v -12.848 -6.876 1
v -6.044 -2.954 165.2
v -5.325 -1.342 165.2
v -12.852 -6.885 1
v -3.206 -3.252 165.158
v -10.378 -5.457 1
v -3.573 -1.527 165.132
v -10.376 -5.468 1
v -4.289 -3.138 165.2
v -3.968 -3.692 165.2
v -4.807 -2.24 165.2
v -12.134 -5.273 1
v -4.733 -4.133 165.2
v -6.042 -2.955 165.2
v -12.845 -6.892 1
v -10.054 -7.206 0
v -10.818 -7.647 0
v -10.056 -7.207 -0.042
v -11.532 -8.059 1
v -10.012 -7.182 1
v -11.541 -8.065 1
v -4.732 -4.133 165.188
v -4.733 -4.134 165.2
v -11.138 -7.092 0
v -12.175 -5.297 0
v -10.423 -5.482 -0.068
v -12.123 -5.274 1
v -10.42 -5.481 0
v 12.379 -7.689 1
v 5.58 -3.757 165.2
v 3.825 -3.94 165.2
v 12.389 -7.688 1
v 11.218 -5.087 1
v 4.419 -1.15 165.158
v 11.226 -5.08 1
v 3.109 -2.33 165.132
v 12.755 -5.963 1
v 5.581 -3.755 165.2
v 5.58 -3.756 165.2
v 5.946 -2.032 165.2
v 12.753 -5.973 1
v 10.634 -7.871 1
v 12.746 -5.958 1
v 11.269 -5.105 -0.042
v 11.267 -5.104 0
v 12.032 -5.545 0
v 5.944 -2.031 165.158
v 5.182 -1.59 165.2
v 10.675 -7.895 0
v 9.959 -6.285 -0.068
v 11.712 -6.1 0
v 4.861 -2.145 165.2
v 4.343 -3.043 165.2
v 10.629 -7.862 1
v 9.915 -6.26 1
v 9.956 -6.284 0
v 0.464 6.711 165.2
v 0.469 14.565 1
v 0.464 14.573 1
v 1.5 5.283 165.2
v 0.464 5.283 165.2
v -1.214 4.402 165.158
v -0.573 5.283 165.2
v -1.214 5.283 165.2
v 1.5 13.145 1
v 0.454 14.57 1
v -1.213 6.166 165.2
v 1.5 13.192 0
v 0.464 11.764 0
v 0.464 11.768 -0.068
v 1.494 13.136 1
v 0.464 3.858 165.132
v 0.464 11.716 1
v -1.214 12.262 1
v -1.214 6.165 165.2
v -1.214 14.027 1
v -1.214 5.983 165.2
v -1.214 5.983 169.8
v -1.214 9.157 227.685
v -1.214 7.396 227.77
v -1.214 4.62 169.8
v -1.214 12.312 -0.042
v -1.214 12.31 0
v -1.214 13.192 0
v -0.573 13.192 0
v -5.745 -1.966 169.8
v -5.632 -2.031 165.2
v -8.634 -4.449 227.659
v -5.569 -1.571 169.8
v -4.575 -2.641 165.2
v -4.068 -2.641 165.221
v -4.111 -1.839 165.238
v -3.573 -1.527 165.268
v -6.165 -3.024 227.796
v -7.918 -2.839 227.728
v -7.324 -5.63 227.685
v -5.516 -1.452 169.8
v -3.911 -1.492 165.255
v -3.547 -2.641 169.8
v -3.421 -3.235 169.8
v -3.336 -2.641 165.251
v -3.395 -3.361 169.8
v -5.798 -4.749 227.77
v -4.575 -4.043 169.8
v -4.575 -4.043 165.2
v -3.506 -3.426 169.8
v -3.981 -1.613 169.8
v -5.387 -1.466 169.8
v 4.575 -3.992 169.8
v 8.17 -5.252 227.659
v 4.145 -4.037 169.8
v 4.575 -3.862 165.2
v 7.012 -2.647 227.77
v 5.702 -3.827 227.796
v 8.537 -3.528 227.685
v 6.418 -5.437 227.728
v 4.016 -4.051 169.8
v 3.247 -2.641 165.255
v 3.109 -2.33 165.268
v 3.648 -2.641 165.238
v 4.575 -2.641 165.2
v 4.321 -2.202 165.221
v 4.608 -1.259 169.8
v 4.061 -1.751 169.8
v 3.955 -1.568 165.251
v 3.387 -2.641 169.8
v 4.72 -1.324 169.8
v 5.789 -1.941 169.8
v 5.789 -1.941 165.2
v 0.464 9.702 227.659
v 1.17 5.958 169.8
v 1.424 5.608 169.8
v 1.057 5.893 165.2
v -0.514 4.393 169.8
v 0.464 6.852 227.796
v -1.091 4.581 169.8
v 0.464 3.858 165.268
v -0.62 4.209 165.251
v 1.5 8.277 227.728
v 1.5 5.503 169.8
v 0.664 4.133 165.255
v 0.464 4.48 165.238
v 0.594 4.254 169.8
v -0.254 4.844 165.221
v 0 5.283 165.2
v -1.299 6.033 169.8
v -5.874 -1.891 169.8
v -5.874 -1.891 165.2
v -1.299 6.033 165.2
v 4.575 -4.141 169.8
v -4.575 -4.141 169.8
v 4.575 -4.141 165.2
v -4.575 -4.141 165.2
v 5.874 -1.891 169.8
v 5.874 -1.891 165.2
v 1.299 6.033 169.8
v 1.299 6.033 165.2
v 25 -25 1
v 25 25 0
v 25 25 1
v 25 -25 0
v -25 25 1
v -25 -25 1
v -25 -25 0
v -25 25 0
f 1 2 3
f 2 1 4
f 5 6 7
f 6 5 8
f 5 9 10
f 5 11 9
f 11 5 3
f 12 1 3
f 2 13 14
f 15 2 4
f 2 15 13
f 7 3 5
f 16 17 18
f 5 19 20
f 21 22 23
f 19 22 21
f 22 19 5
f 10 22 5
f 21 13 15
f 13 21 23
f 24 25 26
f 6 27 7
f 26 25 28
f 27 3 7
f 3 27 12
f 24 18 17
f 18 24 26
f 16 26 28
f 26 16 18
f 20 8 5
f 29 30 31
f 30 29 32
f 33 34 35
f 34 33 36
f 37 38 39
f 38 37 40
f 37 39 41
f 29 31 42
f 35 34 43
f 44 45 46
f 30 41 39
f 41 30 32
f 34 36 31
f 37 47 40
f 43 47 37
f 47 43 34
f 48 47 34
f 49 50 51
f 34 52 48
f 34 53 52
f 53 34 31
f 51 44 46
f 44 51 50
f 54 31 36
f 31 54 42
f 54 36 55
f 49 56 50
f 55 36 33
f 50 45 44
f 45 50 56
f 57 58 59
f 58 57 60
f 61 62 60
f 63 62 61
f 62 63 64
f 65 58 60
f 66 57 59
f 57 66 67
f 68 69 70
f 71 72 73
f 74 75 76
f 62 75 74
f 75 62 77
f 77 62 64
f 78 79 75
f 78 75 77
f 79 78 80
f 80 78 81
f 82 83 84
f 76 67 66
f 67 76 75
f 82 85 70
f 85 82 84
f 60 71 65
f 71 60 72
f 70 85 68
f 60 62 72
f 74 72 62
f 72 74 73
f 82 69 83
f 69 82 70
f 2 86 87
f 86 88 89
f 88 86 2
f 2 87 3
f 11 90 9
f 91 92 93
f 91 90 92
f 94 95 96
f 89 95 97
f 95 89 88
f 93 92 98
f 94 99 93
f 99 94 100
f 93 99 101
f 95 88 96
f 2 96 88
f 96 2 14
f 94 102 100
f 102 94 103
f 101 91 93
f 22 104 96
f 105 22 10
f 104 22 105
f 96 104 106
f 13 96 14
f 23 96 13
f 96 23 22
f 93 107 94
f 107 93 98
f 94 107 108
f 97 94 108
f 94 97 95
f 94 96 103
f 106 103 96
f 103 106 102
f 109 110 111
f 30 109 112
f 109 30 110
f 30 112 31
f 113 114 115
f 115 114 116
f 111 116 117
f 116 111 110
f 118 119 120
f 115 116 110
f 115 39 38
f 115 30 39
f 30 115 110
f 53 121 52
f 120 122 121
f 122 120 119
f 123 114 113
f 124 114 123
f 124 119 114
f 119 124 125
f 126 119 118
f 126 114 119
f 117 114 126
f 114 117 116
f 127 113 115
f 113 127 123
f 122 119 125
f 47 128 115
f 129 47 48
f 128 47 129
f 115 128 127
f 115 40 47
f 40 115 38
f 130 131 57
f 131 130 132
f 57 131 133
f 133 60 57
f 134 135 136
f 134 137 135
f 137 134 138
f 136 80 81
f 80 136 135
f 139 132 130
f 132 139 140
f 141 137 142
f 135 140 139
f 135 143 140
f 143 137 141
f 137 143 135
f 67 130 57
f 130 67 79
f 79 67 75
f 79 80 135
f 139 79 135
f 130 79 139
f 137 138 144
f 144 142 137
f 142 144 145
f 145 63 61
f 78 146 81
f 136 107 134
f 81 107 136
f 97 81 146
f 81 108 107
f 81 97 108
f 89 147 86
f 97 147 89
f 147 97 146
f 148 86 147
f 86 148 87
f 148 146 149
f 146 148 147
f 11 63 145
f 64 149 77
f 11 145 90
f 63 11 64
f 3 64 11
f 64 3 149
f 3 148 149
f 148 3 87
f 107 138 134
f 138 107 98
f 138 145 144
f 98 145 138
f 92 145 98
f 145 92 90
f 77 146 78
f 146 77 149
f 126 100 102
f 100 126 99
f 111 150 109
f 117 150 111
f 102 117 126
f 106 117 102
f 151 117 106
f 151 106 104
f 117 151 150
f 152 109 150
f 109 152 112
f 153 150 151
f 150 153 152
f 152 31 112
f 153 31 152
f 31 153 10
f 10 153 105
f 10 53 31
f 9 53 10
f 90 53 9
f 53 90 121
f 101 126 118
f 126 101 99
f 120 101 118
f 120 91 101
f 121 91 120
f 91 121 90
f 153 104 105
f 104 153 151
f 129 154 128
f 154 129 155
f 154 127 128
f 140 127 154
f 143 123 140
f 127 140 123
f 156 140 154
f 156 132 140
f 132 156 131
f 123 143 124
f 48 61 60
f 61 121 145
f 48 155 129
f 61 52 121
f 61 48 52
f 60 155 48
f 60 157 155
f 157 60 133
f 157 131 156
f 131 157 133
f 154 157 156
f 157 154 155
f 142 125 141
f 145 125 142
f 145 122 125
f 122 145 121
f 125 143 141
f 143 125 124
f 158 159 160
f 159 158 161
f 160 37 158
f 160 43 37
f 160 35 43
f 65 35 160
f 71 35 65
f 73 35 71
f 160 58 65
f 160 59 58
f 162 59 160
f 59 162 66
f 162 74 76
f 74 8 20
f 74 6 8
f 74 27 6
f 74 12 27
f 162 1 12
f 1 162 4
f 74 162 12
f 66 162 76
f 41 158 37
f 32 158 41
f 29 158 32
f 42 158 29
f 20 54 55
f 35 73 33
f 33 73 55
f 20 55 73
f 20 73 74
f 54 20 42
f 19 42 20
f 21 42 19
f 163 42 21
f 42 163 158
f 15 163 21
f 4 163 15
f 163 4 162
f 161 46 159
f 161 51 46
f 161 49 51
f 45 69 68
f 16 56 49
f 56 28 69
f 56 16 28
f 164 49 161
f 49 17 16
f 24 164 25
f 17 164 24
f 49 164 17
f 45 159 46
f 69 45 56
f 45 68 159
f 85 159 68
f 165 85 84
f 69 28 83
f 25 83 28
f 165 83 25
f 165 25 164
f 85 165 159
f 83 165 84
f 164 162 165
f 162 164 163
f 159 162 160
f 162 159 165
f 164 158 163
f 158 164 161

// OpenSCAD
//
// Sturo Tower parametric model
//
// MIT License (see LICENSE file)
// (c) Russell Smith 2019
// https://github.com/ukd1/openscad-sutro-tower
//
// All distances / lengths are in meters.
//
// Deets from:
// https://www.sutrotower.com/PDF/Sutro%20Tower%20DEIR%2008-0517(1).pdf
// https://en.wikipedia.org/wiki/Sutro_Tower

height = 297.8;             // currently doeas shit
level_1_spacing = 45.7;     // from wikipedia
level_4_spacing = 18.3;     // "
level_6_spacing = 30.5;     // "

leg_radius = 1.5;           // guess, it looks kinda right
legs = 3;                   // observations, but this is useful for debug
base = 50;                  // change depending on what you want. 0 or less disables
show_wip_features = false;  // you wanna see work-in-progress stuff? enable this and maybe help? Note, these
                            // should not be indented properly, aka, -1 level, just to keep diffs low / because

//
// Level settings
// 
// some are estimates, based on guessing they're the same size as
// known levels. prolly dumb but easy to fix.
//

// unknown_level_thickness = level_4_top - level_4_bottom;
unknown_level_thickness = 4.6;

// level details from https://www.sutrotower.com/PDF/Sutro%20Tower%20DEIR%2008-0517(1).pdf page 20
// converted from ft to meters (x 0.3048)
//
level_6_top = 232.3;    // 762ft
level_6_bottom = level_6_top - unknown_level_thickness; // estimate

level_5_top = 200.2;    // 657ft
level_5_bottom = level_5_top - unknown_level_thickness; // estimate

level_4_top = 169.8;    // 557ft
level_4_bottom = 165.2; // 542ft

level_3_top = 116.4;    // 382ft
level_3_bottom = level_3_top - unknown_level_thickness; // estimate

level_2_top = 57.0;     // 187ft
level_2_bottom = level_2_top - unknown_level_thickness; // estimate


//
// Draw the base / floor
//
if (base > 0) {
    translate([-(base/2),-(base/2),0])cube([base,base,1]);
}


//
// Bottom "legs" of tower; L1 --> L4 waist
//

// work out the mid-point distance assuming the whole triangle is equilateral
function distance_to_center(spacing) = (spacing/2) * (sin(30) / sin(60));

level_1_distance_to_center = distance_to_center(level_1_spacing);
level_4_distance_to_center = distance_to_center(level_4_spacing);

offset_between_level_1_and_level_4 = level_1_distance_to_center - level_4_distance_to_center;

// now caculate the angle between adjacent and hypotenuse, plus the len
// of hypotenuse (aka, the leg) for a right-triangle as now we know
// the height to level 4, plus the offset distance from the bottom
// of level 1 to level 4.
leg_angle_level_1_to_level_4 = atan(offset_between_level_1_and_level_4/(level_4_bottom - 0));
leg_len_level_1_to_level_4 = sqrt(pow(offset_between_level_1_and_level_4, 2) + pow(level_4_bottom,2));

// for each leg bottom leg
for(leg=[1:legs]) {
    // spin each one 120 deg
    rotate([0,0,leg*120])
        // move the leg out by the distane to center
        translate([0,level_1_distance_to_center,0])
        // rotate it by the angle
        rotate([leg_angle_level_1_to_level_4,0,0])
        // make a cyl the right len (shrug on the radius)
        cylinder(r=leg_radius,h=leg_len_level_1_to_level_4);
}


//
// Top "legs" of tower; L4 --> L6 waist
//

level_6_distance_to_center = distance_to_center(level_6_spacing);
offset_between_level_4_and_level_6 = level_4_distance_to_center - level_6_distance_to_center;
echo(offset_between_level_4_and_level_6, " offset_between_level_4_and_level_6");

// Now caculate the angle between adjacent and hypotenuse, plus the len
// for a right-triangle as now we know
// the height to level 4, plus the offset distance from the bottom
// of level 4 to level 6.
level_4_to_6_height = (level_4_bottom-level_6_bottom);

leg_angle_level_4_to_level_6 = atan(offset_between_level_4_and_level_6/level_4_to_6_height);
leg_len_level_4_to_level_6 = sqrt(pow(offset_between_level_4_and_level_6, 2) + pow(level_4_to_6_height,2));

for(leg=[1:legs]) {
    // move everything to level_4_bottom
    translate([0,0,level_4_bottom]) {
        // spin each one 120 deg
        rotate([0,0,leg*120])
            // move the leg out by the distane to center
            translate([0,level_4_distance_to_center,0])
            // rotate it by the angle
            rotate([-leg_angle_level_1_to_level_4,0,0])
            // make a cyl the right len (shrug on the radius)
            cylinder(r=leg_radius,h=leg_len_level_4_to_level_6);
    }
}


//
// Platforms
//

for(leg=[1:legs]) {
    // spin each one 120 deg
    rotate([0,0,leg*120]) {
        //
        // Level 3 [WIP]
        //
        if (show_wip_features) {
        level_3_spacing=1;
        leg_angle_level_6_to_level_4 = 180 - 90 - leg_angle_level_1_to_level_4;
        level_3_distance_to_center = sin(90)*((level_4_bottom-level_3_bottom)/leg_angle_level_6_to_level_4);
        echo("xx: ", leg_angle_level_1_to_level_4, leg_angle_level_6_to_level_4, level_3_distance_to_center);

        translate([0,0,level_3_bottom]) {
            translate([0,level_3_distance_to_center,0])
            rotate([0,0,-60])
            cube([level_3_spacing/2,1.5,(level_3_top-level_3_bottom)]);
        }
        }
        
        //
        // Level 4
        //
        translate([0,0,level_4_bottom]) {
            translate([0,level_4_distance_to_center,0])
            rotate([0,0,-60])
            cube([level_4_spacing/2,1.5,(level_4_top-level_4_bottom)]);
        }
        
        
        //
        // Level 6 [WIP]
        //
        if (show_wip_features) {
        translate([0,0,level_6_bottom]) {
            translate([0,level_6_distance_to_center,0])
            rotate([0,0,-60])
            cube([(level_6_spacing/2)*1.5,1.5,unknown_level_thickness]);
        }
        }
    }
}
